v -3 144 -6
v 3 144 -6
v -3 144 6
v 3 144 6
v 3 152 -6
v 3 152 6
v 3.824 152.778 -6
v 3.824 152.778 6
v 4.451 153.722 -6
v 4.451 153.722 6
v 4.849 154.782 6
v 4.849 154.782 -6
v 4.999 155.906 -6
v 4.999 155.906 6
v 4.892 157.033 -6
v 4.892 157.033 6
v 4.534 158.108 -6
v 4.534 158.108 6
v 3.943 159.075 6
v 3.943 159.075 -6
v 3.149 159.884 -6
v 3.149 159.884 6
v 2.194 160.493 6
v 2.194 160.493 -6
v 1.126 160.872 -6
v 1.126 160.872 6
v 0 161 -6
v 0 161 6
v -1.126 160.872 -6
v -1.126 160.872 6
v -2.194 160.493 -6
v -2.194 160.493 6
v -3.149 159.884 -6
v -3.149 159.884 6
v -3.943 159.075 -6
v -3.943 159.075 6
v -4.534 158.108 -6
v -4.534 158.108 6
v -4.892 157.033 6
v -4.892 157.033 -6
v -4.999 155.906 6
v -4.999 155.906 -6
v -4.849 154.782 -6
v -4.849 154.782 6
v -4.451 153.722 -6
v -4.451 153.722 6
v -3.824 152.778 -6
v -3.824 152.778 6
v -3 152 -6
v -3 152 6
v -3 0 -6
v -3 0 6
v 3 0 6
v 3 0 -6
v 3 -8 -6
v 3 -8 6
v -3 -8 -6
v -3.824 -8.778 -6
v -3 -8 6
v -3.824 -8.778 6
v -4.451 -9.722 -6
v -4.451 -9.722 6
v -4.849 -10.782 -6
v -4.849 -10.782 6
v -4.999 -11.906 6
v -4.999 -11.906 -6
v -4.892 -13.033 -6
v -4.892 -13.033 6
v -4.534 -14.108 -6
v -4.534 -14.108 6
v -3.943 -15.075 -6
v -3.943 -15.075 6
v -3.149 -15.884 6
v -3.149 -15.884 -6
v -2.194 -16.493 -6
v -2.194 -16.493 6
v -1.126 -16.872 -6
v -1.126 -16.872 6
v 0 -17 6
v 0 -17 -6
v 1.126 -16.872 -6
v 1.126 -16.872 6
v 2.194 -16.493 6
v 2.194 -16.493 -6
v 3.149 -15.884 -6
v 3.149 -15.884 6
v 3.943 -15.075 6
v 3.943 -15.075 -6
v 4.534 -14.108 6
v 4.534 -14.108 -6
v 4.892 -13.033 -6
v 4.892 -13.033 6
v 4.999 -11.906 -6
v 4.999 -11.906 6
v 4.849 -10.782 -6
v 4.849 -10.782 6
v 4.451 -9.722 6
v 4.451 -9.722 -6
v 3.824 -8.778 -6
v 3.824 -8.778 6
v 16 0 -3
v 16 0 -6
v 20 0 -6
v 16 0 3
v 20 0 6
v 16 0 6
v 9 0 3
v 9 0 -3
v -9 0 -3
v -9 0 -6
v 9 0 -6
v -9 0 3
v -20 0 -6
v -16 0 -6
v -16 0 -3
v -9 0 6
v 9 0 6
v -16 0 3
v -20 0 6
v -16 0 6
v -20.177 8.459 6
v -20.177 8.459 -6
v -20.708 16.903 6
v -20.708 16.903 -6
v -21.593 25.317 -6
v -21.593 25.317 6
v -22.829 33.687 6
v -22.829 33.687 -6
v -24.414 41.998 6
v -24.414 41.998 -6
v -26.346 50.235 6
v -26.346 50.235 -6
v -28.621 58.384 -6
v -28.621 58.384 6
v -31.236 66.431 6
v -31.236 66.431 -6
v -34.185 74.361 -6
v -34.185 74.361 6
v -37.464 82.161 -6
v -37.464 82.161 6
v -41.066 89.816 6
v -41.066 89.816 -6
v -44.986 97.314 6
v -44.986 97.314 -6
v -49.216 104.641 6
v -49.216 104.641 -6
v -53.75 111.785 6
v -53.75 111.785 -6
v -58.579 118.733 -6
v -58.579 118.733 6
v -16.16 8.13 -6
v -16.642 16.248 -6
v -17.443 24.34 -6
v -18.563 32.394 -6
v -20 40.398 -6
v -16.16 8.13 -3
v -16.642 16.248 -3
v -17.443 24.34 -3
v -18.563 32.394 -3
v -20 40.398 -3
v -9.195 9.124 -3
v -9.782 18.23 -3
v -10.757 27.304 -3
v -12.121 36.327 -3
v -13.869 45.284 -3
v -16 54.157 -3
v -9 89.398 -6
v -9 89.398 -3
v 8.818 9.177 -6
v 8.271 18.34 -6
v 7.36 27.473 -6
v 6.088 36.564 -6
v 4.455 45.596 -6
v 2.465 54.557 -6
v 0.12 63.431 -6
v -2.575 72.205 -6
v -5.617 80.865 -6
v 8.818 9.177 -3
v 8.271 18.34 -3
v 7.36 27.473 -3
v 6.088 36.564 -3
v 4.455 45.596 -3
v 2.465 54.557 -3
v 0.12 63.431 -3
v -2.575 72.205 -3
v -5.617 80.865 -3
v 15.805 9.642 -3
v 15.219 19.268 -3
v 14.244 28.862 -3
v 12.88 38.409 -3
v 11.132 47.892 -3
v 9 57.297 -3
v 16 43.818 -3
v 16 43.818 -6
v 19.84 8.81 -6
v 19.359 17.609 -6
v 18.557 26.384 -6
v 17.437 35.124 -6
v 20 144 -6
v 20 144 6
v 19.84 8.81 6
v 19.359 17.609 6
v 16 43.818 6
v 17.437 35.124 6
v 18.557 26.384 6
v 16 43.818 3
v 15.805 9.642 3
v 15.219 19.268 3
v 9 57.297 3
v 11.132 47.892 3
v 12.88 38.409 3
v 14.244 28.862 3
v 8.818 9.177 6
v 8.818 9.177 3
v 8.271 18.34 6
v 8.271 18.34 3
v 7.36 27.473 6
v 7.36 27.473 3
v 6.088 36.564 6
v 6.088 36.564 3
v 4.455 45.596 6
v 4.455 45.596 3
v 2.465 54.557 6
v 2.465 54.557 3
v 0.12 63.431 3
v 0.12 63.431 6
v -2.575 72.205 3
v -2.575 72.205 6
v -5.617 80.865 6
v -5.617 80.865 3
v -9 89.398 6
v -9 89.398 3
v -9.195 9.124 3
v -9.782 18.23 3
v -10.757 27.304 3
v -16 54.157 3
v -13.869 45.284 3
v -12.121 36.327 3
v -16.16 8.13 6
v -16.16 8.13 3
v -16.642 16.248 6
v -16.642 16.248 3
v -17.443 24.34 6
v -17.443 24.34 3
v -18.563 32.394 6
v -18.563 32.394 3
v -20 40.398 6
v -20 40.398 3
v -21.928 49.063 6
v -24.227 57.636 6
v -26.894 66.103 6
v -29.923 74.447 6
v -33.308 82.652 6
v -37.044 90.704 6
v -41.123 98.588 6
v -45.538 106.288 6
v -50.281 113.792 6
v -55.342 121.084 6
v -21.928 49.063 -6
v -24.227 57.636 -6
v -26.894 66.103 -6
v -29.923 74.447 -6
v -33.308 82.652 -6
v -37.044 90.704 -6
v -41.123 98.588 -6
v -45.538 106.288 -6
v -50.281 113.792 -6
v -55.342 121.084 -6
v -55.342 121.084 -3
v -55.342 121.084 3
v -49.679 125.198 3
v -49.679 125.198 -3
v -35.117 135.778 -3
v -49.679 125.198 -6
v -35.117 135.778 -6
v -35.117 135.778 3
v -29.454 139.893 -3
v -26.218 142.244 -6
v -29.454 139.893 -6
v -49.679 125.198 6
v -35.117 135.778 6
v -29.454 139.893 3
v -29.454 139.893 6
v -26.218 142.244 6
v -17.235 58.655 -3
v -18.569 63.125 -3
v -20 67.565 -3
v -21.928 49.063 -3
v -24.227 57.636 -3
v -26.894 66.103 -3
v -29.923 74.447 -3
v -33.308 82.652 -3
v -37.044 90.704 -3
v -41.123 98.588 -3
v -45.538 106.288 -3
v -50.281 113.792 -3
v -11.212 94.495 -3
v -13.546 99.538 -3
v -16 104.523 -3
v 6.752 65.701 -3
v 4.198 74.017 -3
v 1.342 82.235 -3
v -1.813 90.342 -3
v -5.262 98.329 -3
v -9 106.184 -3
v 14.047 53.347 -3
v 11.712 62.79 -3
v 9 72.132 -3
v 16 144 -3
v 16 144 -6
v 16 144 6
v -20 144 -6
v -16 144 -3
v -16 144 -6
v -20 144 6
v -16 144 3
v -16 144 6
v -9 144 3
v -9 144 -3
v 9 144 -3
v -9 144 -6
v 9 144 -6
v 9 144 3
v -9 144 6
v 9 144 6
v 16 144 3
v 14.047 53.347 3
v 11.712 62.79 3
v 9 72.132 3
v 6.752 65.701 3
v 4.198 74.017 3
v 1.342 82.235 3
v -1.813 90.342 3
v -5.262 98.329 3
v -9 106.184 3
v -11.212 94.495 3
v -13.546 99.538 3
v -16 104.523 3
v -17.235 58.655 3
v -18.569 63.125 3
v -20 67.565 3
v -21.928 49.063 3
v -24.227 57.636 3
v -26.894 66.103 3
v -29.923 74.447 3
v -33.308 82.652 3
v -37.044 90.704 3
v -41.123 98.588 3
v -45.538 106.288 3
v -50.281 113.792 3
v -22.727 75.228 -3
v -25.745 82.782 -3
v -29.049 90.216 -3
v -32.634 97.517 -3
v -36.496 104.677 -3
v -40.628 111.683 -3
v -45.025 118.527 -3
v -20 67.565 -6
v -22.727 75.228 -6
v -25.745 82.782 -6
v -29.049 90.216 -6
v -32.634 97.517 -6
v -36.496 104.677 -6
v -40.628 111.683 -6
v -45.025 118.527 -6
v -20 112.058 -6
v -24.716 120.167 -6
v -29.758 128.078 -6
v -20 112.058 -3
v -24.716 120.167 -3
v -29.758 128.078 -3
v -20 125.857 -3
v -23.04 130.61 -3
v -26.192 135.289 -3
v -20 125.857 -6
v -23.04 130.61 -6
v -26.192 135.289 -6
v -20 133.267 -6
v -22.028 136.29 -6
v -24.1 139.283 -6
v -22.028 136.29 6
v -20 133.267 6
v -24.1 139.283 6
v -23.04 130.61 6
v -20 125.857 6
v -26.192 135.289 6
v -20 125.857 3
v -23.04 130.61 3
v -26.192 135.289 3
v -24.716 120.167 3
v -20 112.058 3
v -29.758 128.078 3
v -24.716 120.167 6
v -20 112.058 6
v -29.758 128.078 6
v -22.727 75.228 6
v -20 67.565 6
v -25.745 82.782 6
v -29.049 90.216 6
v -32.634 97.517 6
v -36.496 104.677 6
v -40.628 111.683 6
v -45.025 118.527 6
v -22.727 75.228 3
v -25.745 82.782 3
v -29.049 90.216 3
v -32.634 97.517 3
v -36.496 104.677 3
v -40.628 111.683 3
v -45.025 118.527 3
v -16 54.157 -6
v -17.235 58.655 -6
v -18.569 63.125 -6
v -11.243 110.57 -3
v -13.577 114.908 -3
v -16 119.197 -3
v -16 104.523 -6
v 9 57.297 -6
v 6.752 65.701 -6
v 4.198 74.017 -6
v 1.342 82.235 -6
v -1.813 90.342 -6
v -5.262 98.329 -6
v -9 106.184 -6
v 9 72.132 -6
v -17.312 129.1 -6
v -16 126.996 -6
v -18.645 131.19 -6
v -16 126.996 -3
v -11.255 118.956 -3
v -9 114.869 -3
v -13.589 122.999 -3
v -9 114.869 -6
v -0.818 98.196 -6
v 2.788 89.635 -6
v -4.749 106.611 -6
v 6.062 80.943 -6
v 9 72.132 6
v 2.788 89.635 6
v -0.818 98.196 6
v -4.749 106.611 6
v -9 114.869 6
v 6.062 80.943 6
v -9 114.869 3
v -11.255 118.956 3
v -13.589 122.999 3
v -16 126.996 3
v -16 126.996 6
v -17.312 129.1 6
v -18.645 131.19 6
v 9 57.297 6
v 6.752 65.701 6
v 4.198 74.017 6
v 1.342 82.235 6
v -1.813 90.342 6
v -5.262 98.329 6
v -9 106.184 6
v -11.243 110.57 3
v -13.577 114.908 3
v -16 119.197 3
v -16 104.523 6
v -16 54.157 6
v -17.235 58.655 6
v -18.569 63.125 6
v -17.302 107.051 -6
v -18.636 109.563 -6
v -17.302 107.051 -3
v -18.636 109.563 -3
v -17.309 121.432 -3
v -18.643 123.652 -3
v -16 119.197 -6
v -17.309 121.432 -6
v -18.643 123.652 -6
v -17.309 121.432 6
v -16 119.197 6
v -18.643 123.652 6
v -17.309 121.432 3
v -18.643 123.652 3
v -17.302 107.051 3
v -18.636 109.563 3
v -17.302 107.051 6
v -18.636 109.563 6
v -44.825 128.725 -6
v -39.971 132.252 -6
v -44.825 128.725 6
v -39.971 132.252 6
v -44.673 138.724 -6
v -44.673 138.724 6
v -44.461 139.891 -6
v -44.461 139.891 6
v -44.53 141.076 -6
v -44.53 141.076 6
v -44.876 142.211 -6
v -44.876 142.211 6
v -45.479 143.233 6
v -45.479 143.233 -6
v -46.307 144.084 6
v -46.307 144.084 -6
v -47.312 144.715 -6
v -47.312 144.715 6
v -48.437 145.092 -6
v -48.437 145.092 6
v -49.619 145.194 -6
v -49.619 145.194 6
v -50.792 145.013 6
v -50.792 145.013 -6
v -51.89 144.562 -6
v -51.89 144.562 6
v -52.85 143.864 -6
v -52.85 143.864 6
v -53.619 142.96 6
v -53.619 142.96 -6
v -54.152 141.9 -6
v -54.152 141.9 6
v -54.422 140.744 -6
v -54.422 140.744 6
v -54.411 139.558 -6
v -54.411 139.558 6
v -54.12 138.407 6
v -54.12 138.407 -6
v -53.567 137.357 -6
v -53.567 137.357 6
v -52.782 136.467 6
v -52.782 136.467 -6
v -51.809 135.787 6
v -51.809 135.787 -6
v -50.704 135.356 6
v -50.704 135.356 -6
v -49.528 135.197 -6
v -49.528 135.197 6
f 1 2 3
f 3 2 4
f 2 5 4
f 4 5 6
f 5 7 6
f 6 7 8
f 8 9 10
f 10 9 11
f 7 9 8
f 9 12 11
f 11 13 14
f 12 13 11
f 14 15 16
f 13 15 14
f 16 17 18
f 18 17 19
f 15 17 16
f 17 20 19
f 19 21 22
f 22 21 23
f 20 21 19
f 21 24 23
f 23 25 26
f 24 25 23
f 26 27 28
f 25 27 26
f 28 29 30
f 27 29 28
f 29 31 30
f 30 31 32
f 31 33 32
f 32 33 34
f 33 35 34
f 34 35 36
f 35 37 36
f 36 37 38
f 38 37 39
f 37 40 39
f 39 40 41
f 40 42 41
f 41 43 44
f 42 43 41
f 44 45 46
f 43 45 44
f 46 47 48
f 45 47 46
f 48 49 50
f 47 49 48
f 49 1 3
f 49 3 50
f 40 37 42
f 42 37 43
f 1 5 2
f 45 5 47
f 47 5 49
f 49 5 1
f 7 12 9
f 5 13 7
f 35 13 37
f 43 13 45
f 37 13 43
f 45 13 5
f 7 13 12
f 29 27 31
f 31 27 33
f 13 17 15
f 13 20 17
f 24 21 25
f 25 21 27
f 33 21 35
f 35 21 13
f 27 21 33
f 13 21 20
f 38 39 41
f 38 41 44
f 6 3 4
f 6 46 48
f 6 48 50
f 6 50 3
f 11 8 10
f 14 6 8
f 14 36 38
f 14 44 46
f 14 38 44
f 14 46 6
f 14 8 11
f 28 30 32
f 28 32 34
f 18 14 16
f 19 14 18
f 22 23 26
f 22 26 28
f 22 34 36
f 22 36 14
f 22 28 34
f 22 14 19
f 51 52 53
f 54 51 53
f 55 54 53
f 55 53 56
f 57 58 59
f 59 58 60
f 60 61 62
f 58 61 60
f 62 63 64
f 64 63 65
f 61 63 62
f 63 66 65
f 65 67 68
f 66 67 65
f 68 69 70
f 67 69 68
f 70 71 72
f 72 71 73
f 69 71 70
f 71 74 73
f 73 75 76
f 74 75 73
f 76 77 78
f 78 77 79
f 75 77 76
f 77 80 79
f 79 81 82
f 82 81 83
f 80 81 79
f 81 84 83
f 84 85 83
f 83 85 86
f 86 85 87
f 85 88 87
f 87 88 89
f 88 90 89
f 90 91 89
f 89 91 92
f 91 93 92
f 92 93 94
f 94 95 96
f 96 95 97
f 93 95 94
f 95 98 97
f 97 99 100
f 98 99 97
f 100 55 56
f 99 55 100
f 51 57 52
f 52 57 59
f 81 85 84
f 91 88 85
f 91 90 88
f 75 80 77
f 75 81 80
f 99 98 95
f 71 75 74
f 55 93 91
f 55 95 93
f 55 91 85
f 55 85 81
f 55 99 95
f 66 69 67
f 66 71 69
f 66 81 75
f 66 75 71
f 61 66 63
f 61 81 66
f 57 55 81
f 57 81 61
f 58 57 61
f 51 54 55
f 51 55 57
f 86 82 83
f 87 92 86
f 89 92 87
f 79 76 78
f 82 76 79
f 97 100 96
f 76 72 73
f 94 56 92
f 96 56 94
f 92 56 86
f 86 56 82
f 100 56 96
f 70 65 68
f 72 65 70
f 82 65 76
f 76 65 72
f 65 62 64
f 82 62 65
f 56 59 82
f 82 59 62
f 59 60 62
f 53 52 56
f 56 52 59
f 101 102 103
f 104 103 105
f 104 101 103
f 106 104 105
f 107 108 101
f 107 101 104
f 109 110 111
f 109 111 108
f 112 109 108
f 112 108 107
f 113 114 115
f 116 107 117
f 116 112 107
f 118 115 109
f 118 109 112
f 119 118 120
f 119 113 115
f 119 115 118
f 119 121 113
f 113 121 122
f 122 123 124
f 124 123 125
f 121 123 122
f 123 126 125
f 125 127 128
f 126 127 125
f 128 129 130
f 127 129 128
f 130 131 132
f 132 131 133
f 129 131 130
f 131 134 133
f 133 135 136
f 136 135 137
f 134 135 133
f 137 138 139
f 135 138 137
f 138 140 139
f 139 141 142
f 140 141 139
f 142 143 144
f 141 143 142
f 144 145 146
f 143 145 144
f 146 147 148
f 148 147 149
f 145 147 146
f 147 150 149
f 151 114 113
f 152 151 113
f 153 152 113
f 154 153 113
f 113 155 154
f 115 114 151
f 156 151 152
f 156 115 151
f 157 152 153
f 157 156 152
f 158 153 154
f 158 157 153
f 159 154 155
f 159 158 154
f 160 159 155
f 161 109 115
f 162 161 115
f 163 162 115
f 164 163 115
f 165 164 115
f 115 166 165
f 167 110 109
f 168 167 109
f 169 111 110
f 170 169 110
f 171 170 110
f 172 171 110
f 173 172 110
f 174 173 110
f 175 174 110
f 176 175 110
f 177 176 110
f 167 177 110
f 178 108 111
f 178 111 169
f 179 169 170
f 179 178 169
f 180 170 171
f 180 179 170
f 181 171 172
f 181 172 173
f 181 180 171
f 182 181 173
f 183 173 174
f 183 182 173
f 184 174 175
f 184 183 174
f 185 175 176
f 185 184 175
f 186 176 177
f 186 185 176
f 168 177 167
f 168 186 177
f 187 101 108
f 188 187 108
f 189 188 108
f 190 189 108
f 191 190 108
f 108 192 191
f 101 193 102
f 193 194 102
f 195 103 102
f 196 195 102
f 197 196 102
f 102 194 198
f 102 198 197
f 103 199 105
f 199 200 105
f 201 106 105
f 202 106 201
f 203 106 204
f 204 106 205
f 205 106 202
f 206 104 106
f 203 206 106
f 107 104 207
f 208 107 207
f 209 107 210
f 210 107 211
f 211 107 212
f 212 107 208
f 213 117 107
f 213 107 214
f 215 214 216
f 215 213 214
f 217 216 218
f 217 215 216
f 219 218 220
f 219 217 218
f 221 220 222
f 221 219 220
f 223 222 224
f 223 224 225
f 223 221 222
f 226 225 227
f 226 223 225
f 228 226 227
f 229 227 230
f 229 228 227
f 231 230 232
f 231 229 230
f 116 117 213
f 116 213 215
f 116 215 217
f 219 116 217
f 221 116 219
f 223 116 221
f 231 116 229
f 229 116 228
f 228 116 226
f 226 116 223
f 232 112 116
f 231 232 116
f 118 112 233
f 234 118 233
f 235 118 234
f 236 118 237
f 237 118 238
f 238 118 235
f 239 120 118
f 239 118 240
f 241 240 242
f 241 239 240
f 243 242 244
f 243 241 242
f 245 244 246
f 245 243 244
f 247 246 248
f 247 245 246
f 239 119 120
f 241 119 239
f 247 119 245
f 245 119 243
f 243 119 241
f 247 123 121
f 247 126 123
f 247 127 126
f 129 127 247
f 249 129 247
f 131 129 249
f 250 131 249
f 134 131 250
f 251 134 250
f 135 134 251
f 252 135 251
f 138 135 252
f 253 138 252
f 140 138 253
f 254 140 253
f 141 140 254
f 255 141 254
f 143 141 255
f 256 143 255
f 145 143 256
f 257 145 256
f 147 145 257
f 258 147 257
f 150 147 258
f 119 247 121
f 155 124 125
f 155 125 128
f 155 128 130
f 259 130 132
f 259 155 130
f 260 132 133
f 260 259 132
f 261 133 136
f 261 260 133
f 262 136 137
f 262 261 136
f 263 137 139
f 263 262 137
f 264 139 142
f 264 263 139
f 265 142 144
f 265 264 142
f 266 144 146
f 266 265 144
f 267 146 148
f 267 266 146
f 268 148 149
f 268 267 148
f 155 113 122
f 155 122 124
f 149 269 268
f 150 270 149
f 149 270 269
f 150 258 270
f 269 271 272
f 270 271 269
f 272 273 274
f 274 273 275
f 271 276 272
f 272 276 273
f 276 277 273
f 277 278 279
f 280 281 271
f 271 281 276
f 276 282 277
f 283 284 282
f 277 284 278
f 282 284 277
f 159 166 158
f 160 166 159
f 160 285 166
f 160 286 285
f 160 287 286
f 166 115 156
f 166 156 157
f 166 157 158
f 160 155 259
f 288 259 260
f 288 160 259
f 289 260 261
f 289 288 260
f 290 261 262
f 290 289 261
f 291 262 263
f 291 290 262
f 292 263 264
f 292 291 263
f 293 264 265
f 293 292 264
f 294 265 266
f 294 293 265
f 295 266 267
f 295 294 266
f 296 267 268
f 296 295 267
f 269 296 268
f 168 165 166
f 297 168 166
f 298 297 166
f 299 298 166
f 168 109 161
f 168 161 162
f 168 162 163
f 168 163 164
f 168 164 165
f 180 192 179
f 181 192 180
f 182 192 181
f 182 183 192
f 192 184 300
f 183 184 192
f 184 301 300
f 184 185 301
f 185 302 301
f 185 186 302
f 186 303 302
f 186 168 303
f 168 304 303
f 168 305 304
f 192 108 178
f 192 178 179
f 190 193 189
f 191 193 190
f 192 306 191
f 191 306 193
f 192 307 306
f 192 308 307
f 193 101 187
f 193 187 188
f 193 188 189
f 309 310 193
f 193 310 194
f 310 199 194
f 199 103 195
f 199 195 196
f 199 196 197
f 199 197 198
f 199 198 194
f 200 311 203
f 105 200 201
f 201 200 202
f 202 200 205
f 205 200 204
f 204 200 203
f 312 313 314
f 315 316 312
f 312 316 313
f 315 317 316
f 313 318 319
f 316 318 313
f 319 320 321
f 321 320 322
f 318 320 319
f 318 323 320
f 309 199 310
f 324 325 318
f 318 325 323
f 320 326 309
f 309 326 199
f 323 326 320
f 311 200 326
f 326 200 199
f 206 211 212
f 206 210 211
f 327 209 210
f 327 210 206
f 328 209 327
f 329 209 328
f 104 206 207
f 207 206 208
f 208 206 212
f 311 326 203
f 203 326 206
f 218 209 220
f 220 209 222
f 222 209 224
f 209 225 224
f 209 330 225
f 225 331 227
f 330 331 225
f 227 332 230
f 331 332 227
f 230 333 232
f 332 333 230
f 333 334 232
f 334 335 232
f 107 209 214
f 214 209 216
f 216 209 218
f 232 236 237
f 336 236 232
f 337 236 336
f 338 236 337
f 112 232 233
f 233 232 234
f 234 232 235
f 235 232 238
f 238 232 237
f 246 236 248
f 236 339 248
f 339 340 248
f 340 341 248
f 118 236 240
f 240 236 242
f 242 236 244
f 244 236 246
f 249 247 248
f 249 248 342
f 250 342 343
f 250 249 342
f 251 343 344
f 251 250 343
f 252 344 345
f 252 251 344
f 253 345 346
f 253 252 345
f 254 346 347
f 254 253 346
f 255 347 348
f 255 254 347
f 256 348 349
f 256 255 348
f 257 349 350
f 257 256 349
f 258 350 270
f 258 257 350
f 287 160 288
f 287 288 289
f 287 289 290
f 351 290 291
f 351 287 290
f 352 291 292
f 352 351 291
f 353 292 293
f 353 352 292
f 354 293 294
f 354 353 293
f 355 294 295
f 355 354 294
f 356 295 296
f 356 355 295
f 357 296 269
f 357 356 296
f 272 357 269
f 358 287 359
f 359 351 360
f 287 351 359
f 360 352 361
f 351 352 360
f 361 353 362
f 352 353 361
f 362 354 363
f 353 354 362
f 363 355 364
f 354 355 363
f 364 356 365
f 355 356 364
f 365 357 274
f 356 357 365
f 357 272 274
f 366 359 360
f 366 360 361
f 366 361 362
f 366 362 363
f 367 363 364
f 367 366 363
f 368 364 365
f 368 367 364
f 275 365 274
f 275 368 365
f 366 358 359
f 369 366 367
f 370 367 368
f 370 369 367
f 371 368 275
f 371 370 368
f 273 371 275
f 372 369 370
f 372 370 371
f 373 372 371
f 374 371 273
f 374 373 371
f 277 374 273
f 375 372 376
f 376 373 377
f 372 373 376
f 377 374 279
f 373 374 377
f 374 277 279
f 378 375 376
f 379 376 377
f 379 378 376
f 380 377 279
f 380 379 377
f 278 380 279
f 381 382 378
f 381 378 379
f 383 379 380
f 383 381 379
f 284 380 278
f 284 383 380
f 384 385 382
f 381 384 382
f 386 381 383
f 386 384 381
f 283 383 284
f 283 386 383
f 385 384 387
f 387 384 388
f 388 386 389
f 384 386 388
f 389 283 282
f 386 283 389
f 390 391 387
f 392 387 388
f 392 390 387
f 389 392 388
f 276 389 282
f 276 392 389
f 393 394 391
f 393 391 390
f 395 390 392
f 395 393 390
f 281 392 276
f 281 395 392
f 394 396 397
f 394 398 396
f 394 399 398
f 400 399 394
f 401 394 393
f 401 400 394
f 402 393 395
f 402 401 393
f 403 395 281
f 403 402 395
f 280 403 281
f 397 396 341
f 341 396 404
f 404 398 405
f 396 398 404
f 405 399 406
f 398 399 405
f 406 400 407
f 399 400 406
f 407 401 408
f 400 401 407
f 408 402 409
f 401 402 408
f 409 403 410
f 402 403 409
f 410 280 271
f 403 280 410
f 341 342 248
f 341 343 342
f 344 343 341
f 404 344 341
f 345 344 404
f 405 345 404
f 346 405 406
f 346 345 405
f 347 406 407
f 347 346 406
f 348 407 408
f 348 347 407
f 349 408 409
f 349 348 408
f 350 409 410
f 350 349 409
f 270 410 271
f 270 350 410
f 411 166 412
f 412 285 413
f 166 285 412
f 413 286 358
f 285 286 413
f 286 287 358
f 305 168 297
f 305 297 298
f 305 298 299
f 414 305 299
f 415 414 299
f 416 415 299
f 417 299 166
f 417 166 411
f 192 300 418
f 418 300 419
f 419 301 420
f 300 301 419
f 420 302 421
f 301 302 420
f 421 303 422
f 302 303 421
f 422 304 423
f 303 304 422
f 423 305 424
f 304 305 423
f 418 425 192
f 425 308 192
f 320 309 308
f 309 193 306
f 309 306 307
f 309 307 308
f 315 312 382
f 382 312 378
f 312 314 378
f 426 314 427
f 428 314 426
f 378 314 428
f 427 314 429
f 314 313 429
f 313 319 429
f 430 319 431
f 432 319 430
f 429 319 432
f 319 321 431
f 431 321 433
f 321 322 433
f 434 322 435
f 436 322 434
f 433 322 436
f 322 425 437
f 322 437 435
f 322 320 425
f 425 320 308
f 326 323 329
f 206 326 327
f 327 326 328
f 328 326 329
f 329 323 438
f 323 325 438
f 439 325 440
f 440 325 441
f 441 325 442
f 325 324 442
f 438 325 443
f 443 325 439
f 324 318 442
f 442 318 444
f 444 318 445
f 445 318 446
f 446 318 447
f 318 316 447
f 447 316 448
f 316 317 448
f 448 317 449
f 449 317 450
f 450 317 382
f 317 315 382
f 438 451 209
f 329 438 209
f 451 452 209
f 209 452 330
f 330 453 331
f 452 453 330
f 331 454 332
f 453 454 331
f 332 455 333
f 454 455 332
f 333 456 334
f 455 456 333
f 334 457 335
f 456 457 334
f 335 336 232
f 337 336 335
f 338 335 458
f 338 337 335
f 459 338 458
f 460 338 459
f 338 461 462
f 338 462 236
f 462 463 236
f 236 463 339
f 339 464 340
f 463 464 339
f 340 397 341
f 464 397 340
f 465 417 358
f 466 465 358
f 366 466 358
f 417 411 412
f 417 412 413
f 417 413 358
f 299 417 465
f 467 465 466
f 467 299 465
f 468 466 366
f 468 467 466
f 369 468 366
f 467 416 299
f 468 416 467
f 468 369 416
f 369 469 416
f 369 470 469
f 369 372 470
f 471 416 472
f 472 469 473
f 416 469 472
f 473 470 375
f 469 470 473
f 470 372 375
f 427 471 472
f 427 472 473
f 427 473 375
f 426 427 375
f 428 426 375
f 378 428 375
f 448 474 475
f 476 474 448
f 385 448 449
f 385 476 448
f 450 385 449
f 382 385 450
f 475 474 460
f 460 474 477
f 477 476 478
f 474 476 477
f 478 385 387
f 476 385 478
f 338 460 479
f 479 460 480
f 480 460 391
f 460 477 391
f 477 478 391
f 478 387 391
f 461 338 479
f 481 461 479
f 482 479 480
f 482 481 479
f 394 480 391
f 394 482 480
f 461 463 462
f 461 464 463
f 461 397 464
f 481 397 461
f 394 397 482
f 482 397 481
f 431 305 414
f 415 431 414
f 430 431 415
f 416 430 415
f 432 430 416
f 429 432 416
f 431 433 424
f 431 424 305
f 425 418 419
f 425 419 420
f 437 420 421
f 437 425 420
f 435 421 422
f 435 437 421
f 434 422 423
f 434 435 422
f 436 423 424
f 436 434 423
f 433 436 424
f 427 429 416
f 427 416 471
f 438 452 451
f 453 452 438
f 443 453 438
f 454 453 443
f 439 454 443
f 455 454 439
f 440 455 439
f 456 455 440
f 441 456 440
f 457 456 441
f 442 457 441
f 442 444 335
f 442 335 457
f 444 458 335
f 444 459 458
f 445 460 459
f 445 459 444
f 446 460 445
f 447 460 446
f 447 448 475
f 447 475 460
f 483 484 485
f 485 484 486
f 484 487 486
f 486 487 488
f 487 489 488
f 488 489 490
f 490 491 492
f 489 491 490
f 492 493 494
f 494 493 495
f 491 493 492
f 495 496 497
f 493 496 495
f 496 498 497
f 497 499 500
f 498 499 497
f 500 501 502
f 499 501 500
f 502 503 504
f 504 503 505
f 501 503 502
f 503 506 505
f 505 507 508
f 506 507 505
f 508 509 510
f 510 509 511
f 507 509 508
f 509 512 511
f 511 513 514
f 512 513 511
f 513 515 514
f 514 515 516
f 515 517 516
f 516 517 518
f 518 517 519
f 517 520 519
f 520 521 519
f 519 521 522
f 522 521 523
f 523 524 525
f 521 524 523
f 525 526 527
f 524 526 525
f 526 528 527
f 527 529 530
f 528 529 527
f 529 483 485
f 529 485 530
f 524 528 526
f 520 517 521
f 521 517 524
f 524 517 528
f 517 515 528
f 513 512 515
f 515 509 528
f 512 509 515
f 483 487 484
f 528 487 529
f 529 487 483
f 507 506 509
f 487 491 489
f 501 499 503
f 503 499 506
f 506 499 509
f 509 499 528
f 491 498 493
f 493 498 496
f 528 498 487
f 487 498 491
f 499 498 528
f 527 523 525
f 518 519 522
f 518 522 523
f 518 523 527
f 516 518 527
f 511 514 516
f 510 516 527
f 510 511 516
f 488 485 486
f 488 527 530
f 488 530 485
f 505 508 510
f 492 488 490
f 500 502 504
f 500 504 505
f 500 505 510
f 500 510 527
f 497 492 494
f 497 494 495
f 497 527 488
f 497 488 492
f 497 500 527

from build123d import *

# Parameters (mm, degrees)
SKETCH004_W  = 7
SKETCH004_H  = 3
SKETCH005_W  = 7
SKETCH005_H  = 3
SKETCH009_W  = 7
SKETCH009_H  = 3
SKETCH010_W  = 7
SKETCH010_H  = 3
PAD_DEPTH    = 6
PAD001_DEPTH = 6
PAD002_DEPTH = 6


with BuildPart() as body:
    # AdditivePipe: sweep along a path in Sketch002
    with BuildLine(Plane.XY) as additivepipe_path:
        ThreePointArc((0, 0), (-10.865453, 68.601773), (-42.398227, 130.488326))
    # Sketch → AdditivePipe (sweep)
    with BuildSketch(Plane.XZ):
        Polygon((-20, 6), (-20, -6), (-16, -6), (-16, -3), (-9, -3), (-9, -6), (9, -6), (9, -3), (16, -3), (16, -6), (20, -6), (20, 6), (16, 6), (16, 3), (9, 3), (9, 6), (-9, 6), (-9, 3), (-16, 3), (-16, 6), align=None)
    sweep(path=additivepipe_path.line)

    # AdditivePipe001: sweep along a path in Sketch001
    with BuildLine(Plane.XY) as additivepipe001_path:
        Line((0, 0), (0, 144))
    # Sketch → AdditivePipe001 (sweep)
    with BuildSketch(Plane.XZ):
        Polygon((-20, 6), (-20, -6), (-16, -6), (-16, -3), (-9, -3), (-9, -6), (9, -6), (9, -3), (16, -3), (16, -6), (20, -6), (20, 6), (16, 6), (16, 3), (9, 3), (9, 6), (-9, 6), (-9, 3), (-16, 3), (-16, 6), align=None)
    sweep(path=additivepipe001_path.line)

    # SubtractivePipe: sweep along a path in Sketch001
    with BuildLine(Plane.XY) as subtractivepipe_path:
        Line((0, 0), (0, 144))
    # Sketch004 → SubtractivePipe (sweep, cut)
    with BuildSketch(Plane.XZ):
        with Locations((-12.5, 4.5)):
            Rectangle(SKETCH004_W, SKETCH004_H)
    sweep(path=subtractivepipe_path.line, mode=Mode.SUBTRACT)

    # SubtractivePipe001: sweep along a path in Sketch002
    with BuildLine(Plane.XY) as subtractivepipe001_path:
        ThreePointArc((0, 0), (-10.865453, 68.601773), (-42.398227, 130.488326))
    # Sketch004 → SubtractivePipe001 (sweep, cut)
    with BuildSketch(Plane.XZ):
        with Locations((-12.5, 4.5)):
            Rectangle(SKETCH004_W, SKETCH004_H)
    sweep(path=subtractivepipe001_path.line, mode=Mode.SUBTRACT)

    # SubtractivePipe002: sweep along a path in Sketch002
    with BuildLine(Plane.XY) as subtractivepipe002_path:
        ThreePointArc((0, 0), (-10.865453, 68.601773), (-42.398227, 130.488326))
    # Sketch005 (on Face1 of SubtractivePipe001) → SubtractivePipe002 (sweep, cut)
    with BuildSketch(Plane.XZ):
        with Locations((12.5, 4.5)):
            Rectangle(SKETCH005_W, SKETCH005_H)
    sweep(path=subtractivepipe002_path.line, mode=Mode.SUBTRACT)

    # SubtractivePipe003: sweep along a path in Sketch001
    with BuildLine(Plane.XY) as subtractivepipe003_path:
        Line((0, 0), (0, 144))
    # Sketch005 (on Face1 of SubtractivePipe001) → SubtractivePipe003 (sweep, cut)
    with BuildSketch(Plane.XZ):
        with Locations((12.5, 4.5)):
            Rectangle(SKETCH005_W, SKETCH005_H)
    subtractivepipe003 = sweep(path=subtractivepipe003_path.line, mode=Mode.SUBTRACT)

    # Mirrored: SubtractivePipe003 across XY
    add(subtractivepipe003.mirror(Plane.XY), mode=Mode.SUBTRACT)

    # SubtractivePipe004: sweep along a path in Sketch002
    with BuildLine(Plane.XY) as subtractivepipe004_path:
        ThreePointArc((0, 0), (-10.865453, 68.601773), (-42.398227, 130.488326))
    # Sketch009 → SubtractivePipe004 (sweep, cut)
    with BuildSketch(Plane.XZ):
        with Locations((-12.5, -4.5)):
            Rectangle(SKETCH009_W, SKETCH009_H)
    sweep(path=subtractivepipe004_path.line, mode=Mode.SUBTRACT)

    # SubtractivePipe005: sweep along a path in Sketch001
    with BuildLine(Plane.XY) as subtractivepipe005_path:
        Line((0, 0), (0, 144))
    # Sketch009 → SubtractivePipe005 (sweep, cut)
    with BuildSketch(Plane.XZ):
        with Locations((-12.5, -4.5)):
            Rectangle(SKETCH009_W, SKETCH009_H)
    sweep(path=subtractivepipe005_path.line, mode=Mode.SUBTRACT)

    # SubtractivePipe006: sweep along a path in Sketch002
    with BuildLine(Plane.XY) as subtractivepipe006_path:
        ThreePointArc((0, 0), (-10.865453, 68.601773), (-42.398227, 130.488326))
    # Sketch010 (on Face1 of SubtractivePipe005) → SubtractivePipe006 (sweep, cut)
    with BuildSketch(Plane.XZ):
        with Locations((12.5, -4.5)):
            Rectangle(SKETCH010_W, SKETCH010_H)
    sweep(path=subtractivepipe006_path.line, mode=Mode.SUBTRACT)


with BuildPart() as body001:
    # Sketch008 → Pad (new body, symmetric)
    with BuildSketch(Plane.XY):
        with BuildLine():
            Line((-3, 0), (3, 0))
            Line((3, 0), (3, -8))
            ThreePointArc((-3, -8), (0, -17), (3, -8))
            Line((-3, 0), (-3, -8))
        make_face()
    extrude(amount=PAD_DEPTH, both=True)


with BuildPart() as body002:
    # Sketch011 → Pad001 (new body, symmetric)
    with BuildSketch(Plane.XY):
        with BuildLine():
            Line((-3, 144), (3, 144))
            Line((3, 144), (3, 152))
            ThreePointArc((3, 152), (0, 161), (-3, 152))
            Line((-3, 144), (-3, 152))
        make_face()
    extrude(amount=PAD001_DEPTH, both=True)


with BuildPart() as body003:
    # Sketch012 → Pad002 (new body, symmetric)
    with BuildSketch(Plane.XY):
        with BuildLine():
            Line((-44.825278, 128.72497), (-39.971176, 132.251682))
            Line((-39.971176, 132.251682), (-44.673458, 138.723818))
            ThreePointArc((-44.673458, 138.723818), (-52.390577, 144.241615), (-49.52756, 135.197106))
            Line((-44.825278, 128.72497), (-49.52756, 135.197106))
        make_face()
    extrude(amount=PAD002_DEPTH, both=True)


solid = Compound([body.part, body001.part, body002.part, body003.part])
